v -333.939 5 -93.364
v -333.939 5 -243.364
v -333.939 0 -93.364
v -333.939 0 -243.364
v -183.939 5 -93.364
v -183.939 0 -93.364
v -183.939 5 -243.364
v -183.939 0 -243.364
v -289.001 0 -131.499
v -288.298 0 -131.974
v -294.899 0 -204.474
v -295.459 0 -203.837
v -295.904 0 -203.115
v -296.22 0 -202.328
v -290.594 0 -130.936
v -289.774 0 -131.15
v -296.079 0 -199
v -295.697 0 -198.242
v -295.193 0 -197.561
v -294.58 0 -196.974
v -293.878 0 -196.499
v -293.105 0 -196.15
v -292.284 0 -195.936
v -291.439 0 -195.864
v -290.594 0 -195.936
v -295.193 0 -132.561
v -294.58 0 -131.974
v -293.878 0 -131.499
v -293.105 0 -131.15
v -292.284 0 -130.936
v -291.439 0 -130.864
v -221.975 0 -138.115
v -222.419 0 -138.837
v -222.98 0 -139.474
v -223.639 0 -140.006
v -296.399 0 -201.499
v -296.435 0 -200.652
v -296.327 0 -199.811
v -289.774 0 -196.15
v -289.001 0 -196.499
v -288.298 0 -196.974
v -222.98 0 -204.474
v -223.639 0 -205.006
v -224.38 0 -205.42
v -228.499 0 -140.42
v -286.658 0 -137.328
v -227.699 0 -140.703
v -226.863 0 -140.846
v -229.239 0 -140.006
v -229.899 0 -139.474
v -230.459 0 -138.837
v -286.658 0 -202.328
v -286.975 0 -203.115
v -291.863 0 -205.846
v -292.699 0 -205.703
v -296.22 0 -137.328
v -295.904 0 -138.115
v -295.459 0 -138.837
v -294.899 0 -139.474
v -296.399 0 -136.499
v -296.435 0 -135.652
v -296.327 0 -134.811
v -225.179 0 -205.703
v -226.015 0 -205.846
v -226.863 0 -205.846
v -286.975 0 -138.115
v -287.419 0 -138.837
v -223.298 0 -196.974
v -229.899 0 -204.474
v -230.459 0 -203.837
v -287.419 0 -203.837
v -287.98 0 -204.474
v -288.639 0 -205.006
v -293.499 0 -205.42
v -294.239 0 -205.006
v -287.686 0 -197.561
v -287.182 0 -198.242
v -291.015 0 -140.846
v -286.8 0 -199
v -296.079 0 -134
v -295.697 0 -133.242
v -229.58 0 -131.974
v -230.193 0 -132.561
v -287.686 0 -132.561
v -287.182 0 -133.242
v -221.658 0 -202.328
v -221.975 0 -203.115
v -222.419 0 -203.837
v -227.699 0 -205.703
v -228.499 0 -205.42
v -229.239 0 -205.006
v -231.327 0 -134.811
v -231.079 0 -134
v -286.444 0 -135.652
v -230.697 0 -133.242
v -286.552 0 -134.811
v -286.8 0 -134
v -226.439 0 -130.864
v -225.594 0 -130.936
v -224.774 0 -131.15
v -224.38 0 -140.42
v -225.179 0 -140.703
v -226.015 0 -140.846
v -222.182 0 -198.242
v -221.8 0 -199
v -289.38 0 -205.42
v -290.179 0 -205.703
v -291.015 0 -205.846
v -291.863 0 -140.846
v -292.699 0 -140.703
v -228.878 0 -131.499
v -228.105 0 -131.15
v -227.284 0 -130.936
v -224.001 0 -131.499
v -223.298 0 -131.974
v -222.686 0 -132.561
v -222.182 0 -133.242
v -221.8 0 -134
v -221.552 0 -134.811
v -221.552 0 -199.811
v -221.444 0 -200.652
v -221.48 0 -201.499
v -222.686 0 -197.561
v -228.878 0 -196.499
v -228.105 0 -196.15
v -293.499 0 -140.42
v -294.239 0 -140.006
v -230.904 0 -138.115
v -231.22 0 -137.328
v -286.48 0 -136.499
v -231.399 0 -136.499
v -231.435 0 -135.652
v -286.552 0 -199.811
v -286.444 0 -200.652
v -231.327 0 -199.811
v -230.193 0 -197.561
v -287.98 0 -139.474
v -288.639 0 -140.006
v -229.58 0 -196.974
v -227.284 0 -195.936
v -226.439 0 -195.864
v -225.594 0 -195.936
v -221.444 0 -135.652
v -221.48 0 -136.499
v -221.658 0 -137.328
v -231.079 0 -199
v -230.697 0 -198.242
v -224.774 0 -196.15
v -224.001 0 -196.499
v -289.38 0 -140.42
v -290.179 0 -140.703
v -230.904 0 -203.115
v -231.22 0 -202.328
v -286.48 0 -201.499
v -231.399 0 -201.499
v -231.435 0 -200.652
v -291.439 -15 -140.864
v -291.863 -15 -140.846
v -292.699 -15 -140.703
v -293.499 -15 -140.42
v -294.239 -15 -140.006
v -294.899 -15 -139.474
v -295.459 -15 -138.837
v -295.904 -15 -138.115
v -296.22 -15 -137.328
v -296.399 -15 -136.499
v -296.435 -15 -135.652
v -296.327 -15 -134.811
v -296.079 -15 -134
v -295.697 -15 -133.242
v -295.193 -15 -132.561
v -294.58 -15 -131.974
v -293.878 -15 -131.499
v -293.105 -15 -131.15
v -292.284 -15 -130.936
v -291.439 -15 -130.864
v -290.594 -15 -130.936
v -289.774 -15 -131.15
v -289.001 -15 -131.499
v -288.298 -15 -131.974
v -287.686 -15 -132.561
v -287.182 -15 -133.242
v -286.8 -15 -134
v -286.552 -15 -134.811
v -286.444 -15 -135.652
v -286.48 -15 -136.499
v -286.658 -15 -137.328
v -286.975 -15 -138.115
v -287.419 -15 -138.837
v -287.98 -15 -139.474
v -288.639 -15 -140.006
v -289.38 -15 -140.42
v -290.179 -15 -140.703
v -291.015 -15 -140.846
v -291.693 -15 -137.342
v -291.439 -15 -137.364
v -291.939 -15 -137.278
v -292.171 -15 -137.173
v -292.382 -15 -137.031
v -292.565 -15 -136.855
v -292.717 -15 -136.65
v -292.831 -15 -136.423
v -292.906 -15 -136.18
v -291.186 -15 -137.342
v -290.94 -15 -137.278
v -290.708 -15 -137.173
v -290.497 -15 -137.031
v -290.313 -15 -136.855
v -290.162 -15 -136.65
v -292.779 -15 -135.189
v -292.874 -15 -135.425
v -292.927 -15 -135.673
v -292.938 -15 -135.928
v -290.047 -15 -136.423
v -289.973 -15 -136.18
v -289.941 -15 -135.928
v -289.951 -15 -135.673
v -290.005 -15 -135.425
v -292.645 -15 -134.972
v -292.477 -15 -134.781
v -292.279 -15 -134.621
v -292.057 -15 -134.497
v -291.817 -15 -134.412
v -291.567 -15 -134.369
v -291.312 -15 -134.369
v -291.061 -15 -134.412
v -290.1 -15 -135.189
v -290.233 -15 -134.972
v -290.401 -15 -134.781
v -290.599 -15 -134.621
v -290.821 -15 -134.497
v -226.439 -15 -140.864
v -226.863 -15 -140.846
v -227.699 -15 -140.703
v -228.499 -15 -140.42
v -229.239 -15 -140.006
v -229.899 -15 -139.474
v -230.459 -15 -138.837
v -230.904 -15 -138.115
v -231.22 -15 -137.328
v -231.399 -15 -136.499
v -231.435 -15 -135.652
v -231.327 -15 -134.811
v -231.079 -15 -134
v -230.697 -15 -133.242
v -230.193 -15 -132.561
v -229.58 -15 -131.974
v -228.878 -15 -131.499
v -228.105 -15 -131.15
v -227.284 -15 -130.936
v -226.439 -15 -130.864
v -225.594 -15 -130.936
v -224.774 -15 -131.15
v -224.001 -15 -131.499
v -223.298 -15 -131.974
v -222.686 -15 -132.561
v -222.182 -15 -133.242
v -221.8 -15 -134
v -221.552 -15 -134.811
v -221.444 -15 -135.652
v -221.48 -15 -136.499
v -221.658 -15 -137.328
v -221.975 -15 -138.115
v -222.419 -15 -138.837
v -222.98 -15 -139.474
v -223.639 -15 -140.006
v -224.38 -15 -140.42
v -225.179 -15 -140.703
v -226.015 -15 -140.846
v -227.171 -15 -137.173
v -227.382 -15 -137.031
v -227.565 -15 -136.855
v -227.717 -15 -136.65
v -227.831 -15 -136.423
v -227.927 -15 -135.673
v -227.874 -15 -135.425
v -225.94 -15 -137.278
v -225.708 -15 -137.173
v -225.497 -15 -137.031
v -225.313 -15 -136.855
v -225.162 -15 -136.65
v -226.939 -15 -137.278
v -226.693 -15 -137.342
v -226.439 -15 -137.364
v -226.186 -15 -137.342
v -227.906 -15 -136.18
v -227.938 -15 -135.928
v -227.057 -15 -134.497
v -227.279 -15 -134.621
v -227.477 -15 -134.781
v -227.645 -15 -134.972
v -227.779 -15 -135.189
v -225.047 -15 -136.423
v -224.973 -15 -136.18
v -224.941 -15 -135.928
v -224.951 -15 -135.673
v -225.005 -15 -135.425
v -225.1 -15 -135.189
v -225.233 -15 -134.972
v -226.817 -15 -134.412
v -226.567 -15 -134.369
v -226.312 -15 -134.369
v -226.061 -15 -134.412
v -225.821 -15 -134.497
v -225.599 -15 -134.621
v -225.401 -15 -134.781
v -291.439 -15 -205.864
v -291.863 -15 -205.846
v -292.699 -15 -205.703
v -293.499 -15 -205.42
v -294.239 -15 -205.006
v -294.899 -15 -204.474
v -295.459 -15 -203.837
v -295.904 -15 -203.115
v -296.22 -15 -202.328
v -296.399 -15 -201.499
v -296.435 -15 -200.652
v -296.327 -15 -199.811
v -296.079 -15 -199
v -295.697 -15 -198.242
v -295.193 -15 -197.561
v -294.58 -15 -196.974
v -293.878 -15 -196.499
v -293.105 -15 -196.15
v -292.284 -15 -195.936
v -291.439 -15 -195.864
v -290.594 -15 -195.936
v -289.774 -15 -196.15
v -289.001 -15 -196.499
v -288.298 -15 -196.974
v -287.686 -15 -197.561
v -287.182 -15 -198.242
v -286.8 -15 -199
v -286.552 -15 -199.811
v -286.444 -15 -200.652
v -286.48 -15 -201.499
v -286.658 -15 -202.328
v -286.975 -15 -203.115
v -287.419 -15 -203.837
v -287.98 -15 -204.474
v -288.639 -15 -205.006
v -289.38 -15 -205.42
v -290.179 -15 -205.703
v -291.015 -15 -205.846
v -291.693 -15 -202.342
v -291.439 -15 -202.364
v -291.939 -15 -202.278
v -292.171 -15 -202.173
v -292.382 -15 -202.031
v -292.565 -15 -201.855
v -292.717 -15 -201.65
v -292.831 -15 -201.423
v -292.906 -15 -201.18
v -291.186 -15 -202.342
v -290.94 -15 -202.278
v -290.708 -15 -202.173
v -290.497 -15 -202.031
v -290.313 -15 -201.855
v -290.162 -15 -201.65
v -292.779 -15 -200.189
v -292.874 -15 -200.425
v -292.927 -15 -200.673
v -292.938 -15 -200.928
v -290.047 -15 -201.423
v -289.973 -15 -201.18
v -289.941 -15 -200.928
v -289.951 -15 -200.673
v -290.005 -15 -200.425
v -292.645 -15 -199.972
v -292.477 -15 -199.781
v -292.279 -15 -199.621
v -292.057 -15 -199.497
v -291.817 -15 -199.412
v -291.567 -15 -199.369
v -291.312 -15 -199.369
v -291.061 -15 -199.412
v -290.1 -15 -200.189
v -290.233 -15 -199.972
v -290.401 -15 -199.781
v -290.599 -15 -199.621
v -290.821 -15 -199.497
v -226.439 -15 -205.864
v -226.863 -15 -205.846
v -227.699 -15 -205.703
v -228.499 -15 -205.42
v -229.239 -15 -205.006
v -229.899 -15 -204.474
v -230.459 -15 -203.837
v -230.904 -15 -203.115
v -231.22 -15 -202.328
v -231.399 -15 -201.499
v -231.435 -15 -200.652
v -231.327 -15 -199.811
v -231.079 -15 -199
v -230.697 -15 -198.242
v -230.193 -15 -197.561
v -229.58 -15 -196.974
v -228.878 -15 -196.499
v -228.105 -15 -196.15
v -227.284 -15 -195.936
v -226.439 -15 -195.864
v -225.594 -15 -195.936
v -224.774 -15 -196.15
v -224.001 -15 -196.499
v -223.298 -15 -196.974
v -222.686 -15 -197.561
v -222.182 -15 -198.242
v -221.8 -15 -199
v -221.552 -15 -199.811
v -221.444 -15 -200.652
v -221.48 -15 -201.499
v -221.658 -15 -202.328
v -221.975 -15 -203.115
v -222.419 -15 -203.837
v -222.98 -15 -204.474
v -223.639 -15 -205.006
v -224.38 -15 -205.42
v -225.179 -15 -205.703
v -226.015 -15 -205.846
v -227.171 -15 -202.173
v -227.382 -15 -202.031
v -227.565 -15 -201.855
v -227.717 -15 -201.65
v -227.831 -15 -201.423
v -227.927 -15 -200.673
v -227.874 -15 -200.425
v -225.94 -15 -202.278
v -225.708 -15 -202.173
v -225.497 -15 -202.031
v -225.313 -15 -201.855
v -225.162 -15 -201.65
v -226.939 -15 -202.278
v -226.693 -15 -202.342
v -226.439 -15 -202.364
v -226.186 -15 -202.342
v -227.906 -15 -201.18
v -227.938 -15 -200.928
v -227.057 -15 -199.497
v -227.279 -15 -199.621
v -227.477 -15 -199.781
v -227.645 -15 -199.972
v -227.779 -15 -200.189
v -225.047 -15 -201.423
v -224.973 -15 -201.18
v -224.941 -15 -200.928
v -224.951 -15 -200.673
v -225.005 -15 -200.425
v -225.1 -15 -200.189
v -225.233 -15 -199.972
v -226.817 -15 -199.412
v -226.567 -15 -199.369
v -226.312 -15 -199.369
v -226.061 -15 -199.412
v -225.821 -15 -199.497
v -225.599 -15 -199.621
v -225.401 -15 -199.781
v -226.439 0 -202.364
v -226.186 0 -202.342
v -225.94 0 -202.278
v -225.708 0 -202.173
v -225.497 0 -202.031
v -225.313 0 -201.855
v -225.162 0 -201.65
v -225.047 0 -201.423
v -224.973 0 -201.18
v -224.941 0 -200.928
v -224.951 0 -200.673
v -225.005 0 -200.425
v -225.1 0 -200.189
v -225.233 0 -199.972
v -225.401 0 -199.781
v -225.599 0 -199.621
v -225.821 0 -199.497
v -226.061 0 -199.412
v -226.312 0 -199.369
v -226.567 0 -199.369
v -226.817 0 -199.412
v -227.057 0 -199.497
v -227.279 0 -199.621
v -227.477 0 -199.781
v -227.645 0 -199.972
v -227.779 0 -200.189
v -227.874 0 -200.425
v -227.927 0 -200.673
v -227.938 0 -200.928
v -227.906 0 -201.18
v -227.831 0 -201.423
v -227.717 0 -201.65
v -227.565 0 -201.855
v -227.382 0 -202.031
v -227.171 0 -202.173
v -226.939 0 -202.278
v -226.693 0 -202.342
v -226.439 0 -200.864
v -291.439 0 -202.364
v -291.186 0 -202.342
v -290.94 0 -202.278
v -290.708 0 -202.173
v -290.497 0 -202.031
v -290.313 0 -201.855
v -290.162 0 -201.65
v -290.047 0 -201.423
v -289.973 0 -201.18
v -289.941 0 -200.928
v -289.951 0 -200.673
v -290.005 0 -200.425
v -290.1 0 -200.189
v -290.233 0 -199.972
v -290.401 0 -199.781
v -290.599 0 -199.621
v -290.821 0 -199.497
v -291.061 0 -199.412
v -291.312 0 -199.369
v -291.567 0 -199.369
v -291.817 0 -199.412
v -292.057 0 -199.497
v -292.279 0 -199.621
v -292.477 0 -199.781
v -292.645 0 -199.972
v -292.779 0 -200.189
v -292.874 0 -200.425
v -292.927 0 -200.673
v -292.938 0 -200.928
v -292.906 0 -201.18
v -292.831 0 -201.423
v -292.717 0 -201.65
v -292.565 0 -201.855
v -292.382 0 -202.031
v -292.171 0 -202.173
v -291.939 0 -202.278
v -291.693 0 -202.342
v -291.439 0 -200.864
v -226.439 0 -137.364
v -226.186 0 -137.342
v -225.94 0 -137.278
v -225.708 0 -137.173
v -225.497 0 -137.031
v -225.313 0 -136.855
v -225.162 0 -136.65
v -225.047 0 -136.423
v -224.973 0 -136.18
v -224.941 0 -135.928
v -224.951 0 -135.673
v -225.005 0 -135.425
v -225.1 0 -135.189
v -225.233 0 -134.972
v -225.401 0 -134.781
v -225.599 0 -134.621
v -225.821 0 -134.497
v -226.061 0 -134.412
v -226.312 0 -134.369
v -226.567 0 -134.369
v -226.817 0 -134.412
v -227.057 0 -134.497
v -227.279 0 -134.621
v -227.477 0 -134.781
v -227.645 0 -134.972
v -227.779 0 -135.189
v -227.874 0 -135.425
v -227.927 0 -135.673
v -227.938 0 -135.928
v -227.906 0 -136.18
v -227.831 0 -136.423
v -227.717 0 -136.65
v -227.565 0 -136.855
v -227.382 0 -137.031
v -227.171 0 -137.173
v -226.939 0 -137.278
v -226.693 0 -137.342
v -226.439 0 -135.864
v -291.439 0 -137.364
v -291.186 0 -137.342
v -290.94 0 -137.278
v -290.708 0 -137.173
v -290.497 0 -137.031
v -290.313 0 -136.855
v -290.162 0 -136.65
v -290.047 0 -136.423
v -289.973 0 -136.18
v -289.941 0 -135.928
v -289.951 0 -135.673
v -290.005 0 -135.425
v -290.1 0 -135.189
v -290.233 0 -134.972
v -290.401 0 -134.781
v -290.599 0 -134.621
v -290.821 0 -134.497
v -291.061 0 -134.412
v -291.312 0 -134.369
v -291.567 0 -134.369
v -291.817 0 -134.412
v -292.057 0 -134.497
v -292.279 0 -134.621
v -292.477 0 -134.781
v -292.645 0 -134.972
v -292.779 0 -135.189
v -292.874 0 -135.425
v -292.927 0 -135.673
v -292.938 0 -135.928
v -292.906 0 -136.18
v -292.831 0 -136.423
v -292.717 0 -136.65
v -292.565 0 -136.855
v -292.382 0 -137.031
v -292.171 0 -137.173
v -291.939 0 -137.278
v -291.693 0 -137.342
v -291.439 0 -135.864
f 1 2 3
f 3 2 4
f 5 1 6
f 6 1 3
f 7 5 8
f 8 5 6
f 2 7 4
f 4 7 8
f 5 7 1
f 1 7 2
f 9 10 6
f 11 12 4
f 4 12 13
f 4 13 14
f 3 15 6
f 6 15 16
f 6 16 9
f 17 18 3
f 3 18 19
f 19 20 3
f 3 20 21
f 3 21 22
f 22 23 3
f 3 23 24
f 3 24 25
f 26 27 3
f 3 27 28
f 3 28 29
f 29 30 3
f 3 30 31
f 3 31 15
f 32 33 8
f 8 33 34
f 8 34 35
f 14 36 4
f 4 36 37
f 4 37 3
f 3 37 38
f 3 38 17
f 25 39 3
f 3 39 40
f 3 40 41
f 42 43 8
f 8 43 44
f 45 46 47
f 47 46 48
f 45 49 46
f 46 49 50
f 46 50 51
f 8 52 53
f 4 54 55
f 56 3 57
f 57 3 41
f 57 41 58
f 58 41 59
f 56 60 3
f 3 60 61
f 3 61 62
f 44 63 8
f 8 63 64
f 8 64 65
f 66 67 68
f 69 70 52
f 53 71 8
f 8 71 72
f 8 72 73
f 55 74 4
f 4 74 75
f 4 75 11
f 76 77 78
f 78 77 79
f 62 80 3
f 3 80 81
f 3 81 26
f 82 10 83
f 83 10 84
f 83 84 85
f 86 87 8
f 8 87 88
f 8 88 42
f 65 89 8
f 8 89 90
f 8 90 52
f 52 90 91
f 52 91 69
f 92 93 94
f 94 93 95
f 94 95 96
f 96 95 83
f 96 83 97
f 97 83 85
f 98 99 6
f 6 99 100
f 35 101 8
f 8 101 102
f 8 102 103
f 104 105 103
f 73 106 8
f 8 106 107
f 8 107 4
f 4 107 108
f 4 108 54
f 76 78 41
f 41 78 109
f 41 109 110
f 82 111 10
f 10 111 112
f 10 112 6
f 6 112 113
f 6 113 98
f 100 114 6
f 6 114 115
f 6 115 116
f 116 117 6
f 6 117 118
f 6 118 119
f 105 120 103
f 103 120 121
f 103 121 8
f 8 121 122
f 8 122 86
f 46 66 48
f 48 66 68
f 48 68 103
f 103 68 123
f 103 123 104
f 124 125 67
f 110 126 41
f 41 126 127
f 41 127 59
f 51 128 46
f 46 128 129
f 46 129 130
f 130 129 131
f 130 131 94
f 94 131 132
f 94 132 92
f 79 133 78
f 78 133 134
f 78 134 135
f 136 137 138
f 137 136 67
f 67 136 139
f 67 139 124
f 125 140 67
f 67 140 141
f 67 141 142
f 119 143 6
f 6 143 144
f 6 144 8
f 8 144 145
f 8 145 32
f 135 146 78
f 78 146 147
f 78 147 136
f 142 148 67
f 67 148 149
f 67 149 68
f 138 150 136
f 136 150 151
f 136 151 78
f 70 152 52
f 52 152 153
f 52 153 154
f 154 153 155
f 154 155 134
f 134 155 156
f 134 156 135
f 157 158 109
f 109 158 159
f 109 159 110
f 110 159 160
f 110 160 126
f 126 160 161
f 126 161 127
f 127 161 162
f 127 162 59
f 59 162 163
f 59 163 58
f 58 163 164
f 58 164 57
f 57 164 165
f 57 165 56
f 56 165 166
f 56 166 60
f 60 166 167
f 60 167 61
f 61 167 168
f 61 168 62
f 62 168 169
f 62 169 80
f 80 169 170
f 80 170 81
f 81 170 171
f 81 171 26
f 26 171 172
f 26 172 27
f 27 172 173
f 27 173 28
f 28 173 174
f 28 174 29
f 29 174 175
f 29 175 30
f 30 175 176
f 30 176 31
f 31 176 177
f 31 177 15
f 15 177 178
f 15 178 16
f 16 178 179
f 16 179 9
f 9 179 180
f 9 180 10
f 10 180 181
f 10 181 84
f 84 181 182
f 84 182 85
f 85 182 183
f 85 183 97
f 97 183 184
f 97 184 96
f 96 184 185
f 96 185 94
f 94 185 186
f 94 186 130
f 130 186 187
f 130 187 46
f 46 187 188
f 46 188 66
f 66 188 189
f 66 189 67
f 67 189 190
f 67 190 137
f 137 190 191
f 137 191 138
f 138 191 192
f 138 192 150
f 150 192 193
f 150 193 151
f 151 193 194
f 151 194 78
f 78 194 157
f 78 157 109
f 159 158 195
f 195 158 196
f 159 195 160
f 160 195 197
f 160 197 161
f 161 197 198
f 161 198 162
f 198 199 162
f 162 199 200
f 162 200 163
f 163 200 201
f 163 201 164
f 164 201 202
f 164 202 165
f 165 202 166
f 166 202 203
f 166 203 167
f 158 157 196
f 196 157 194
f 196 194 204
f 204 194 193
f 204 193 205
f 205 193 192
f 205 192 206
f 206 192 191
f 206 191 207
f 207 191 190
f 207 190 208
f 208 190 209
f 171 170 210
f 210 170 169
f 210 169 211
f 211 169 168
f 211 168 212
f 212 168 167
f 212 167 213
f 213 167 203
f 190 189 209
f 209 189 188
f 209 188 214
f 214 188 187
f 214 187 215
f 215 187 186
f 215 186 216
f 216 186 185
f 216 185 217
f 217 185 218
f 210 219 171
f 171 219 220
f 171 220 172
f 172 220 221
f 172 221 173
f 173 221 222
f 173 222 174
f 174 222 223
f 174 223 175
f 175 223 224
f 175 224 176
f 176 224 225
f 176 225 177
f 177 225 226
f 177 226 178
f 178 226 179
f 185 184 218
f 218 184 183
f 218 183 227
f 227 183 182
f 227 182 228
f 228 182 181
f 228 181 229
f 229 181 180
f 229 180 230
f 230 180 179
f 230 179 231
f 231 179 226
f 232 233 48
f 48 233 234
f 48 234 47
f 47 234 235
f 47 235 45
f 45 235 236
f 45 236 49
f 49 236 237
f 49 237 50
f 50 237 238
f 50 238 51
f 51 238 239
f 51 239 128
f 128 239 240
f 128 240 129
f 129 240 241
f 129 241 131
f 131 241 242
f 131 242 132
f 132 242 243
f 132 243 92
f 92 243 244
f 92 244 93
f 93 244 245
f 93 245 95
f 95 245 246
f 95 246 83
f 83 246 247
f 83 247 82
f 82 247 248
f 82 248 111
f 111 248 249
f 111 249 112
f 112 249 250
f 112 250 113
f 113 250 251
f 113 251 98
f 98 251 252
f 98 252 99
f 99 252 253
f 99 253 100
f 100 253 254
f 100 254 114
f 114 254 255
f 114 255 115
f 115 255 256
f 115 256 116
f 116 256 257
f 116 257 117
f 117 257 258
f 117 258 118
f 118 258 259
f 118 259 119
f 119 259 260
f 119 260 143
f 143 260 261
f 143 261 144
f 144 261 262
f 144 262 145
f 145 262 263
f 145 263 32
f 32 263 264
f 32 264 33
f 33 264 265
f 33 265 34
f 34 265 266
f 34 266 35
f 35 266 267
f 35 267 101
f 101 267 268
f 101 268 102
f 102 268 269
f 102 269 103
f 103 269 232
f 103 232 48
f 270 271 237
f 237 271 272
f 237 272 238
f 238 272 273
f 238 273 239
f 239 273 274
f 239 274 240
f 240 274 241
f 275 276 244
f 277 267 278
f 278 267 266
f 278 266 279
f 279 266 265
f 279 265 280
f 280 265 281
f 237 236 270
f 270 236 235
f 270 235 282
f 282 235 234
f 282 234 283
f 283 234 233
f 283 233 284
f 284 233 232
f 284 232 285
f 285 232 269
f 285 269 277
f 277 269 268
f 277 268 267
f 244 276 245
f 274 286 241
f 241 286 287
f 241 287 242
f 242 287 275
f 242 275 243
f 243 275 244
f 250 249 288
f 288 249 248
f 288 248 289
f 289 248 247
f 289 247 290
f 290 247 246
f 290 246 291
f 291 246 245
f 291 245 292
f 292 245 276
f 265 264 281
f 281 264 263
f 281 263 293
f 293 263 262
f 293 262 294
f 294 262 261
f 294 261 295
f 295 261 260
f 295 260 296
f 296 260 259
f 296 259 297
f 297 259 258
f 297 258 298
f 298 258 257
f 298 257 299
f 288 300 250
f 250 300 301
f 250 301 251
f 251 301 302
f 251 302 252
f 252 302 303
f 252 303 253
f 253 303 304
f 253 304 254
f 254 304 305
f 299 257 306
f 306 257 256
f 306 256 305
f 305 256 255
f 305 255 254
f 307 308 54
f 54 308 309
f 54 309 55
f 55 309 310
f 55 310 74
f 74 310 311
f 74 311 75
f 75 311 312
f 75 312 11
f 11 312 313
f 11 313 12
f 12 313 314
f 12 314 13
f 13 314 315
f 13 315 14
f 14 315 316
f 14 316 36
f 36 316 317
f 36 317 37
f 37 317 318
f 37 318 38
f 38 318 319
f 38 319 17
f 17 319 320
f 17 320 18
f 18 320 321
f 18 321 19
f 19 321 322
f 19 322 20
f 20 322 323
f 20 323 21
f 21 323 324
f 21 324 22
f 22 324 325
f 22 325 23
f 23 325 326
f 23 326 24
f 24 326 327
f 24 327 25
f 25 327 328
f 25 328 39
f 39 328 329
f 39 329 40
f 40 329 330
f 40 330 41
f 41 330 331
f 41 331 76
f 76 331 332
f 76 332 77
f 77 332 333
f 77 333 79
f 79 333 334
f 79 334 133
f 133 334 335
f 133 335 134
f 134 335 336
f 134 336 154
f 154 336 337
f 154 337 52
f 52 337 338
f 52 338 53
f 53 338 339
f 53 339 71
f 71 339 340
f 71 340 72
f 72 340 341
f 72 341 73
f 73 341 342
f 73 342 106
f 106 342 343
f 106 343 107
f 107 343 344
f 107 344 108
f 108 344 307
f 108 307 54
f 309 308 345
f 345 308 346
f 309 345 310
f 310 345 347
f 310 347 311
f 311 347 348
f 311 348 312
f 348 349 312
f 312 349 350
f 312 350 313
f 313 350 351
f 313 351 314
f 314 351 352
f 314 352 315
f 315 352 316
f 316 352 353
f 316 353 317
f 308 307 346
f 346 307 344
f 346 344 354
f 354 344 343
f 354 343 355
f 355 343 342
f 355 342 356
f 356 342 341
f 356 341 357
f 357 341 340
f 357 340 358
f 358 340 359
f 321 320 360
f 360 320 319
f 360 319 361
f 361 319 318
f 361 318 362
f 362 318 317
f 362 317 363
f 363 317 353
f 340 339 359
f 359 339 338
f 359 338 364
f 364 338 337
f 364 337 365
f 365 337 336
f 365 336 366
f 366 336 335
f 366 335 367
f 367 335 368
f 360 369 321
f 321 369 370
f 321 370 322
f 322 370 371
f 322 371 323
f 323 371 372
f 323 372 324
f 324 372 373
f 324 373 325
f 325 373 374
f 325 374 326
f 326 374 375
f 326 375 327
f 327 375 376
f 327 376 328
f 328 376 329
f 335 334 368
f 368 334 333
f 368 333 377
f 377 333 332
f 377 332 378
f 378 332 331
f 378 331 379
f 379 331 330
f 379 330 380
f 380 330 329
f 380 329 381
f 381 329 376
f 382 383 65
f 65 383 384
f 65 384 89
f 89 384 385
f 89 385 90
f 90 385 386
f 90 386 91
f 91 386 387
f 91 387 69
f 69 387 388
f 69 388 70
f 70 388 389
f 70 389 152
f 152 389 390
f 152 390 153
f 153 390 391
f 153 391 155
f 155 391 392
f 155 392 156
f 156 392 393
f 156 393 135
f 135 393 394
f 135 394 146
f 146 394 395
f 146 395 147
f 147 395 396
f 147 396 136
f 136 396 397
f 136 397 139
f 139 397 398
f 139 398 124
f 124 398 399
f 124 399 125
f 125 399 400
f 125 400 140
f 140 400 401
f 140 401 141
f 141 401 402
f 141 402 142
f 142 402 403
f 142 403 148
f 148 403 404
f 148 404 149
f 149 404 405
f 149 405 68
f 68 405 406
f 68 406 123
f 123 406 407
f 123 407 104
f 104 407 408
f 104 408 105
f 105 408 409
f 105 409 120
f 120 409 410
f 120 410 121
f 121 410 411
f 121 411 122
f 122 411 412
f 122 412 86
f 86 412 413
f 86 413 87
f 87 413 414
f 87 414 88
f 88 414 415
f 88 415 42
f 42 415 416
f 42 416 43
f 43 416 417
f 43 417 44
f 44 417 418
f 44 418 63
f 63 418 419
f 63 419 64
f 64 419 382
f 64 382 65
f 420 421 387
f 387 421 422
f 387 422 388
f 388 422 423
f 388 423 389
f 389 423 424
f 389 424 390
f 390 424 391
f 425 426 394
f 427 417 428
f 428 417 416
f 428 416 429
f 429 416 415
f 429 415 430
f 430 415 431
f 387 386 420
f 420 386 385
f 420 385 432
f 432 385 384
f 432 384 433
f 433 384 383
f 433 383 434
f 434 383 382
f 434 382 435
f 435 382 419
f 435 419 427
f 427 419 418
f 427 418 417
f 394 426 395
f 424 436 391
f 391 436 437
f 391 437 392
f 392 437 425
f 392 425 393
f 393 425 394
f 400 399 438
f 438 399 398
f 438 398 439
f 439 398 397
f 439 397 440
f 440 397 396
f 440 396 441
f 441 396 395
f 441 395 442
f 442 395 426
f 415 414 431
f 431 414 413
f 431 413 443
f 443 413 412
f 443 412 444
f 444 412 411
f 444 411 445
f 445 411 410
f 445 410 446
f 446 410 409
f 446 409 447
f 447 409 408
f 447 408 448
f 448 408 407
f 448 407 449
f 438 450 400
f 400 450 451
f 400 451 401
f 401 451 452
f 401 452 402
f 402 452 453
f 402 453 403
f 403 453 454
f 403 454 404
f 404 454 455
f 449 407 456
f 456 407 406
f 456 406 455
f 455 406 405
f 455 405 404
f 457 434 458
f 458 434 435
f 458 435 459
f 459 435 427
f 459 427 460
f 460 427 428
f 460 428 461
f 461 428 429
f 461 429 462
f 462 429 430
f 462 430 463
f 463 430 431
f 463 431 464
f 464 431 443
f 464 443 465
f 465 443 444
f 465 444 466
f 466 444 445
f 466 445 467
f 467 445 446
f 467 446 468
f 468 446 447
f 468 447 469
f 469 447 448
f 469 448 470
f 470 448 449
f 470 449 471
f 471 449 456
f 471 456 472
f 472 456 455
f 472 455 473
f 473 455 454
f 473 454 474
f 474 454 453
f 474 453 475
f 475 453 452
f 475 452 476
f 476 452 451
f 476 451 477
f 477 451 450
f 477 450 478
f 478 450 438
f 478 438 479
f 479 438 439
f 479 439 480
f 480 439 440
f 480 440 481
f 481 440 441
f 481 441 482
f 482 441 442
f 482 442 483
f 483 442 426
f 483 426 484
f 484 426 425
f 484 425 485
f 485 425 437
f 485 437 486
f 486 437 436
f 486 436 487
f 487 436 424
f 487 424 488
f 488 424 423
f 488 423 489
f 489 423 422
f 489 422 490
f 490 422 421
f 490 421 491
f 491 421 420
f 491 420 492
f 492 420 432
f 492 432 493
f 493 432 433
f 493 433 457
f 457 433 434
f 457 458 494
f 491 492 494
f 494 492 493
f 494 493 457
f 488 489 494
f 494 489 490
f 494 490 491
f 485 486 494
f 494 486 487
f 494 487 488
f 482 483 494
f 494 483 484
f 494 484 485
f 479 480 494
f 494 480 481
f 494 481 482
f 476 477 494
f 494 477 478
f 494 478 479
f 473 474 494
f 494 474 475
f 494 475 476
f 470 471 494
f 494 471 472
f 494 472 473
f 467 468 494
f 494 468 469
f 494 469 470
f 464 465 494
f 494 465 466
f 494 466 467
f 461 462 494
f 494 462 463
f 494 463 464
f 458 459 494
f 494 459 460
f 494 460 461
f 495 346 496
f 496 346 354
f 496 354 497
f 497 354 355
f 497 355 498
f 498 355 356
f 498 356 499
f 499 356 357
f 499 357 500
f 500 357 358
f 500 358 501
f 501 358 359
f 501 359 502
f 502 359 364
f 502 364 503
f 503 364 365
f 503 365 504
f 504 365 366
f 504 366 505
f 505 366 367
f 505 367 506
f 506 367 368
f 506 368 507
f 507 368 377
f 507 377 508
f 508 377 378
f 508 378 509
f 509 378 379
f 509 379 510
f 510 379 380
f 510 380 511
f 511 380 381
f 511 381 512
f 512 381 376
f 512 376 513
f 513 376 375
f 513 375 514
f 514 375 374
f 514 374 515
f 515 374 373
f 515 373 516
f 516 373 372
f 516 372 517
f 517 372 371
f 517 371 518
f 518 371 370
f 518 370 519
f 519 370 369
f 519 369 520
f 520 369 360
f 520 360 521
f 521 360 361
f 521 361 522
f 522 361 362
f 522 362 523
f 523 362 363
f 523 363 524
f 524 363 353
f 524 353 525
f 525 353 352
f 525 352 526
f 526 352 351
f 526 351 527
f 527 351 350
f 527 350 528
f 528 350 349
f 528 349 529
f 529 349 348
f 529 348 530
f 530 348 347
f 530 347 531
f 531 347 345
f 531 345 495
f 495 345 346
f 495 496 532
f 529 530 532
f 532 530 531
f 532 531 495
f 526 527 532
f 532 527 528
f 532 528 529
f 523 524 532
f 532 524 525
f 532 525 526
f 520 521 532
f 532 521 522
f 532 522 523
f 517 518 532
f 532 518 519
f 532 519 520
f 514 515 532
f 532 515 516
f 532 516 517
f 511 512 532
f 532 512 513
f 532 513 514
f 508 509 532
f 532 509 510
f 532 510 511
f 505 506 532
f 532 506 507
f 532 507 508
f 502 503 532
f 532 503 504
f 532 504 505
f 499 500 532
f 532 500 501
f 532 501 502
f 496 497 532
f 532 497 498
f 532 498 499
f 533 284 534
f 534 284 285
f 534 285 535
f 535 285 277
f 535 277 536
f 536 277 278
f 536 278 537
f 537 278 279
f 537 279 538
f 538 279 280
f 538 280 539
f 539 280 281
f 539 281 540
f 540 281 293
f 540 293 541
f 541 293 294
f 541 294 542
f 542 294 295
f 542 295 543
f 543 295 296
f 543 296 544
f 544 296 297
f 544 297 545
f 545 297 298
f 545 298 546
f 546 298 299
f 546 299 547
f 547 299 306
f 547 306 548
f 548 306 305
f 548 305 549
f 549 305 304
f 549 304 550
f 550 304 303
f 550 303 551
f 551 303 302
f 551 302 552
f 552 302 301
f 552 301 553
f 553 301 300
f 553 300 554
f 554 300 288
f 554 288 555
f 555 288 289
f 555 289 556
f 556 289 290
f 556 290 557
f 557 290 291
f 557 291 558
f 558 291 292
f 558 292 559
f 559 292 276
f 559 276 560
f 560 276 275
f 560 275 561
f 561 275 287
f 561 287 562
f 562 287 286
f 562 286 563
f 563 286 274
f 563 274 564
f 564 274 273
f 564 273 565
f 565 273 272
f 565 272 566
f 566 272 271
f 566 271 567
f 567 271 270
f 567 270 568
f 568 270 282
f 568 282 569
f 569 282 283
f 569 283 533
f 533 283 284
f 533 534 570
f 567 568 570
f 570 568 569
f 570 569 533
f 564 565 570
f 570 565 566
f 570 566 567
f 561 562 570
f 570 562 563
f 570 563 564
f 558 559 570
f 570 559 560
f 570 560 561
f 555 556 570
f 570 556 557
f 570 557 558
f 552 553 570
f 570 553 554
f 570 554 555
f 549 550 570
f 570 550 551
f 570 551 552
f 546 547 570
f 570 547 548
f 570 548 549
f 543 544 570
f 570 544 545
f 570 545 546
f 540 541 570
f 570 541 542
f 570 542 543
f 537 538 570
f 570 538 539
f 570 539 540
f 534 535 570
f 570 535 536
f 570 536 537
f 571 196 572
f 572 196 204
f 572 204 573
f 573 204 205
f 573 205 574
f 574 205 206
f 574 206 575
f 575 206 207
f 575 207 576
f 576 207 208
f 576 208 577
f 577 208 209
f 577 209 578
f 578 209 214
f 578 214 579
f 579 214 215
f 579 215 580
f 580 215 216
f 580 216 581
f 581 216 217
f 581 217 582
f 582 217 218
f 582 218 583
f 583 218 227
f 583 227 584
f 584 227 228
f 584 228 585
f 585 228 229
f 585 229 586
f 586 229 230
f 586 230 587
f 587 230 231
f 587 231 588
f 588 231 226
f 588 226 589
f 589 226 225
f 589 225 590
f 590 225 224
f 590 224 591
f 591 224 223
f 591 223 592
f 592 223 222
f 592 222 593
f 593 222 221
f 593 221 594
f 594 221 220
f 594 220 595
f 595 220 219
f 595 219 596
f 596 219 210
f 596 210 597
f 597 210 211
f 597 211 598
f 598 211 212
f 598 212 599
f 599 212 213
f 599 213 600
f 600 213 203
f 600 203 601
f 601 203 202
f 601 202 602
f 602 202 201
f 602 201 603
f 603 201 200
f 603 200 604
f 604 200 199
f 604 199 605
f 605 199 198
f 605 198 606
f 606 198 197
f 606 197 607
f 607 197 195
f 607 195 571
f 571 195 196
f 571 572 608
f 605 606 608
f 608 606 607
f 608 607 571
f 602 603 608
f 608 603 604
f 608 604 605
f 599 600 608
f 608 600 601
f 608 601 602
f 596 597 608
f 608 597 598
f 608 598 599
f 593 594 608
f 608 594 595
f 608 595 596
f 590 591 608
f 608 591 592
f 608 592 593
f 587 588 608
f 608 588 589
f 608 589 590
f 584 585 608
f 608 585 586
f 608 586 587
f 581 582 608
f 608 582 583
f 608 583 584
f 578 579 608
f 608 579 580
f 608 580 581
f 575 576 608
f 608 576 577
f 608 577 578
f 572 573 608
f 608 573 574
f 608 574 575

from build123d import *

# Parameters (mm, degrees)
ESBO_O1_W                = 150
ESBO_O1_H                = 150
RESSALTO_EXTRUS_O1_DEPTH = 5
ESBO_O2_R                = 5
RESSALTO_EXTRUS_O2_DEPTH = 15
ESBO_O4_R                = 1.5
CORTE_EXTRUS_O1_DEPTH    = 15


with BuildPart() as part:
    # Esboço1 → Ressalto-extrusão1 (new body)
    with BuildSketch(Plane(origin=(0, 0, 0), x_dir=(1, 0, 0), z_dir=(0, 1, 0))):
        with Locations((-258.939300439, 168.363905829)):
            Rectangle(ESBO_O1_W, ESBO_O1_H)
    extrude(amount=RESSALTO_EXTRUS_O1_DEPTH)

    # Esboço2 → Ressalto-extrusão2 (add)
    with BuildSketch(Plane(origin=(0, 0, 0), x_dir=(-1, 0, 0), z_dir=(0, -1, 0))):
        with Locations(Location((291.439300439, 135.863905829, 0), (0, 0, 270))):
            Circle(ESBO_O2_R)
        with Locations(Location((226.439300439, 135.863905829, 0), (0, 0, 270))):
            Circle(ESBO_O2_R)
        with Locations(Location((291.439300439, 200.863905829, 0), (0, 0, 270))):
            Circle(ESBO_O2_R)
        with Locations(Location((226.439300439, 200.863905829, 0), (0, 0, 270))):
            Circle(ESBO_O2_R)
    extrude(amount=RESSALTO_EXTRUS_O2_DEPTH)

    # Esboço4 → Corte-extrusão1 (cut)
    with BuildSketch(Plane(origin=(0, -15, 0), x_dir=(-1, 0, 0), z_dir=(0, -1, 0))):
        with Locations(Location((291.439300439, 135.863905829, 0), (0, 0, 90))):
            Circle(ESBO_O4_R)
        with Locations(Location((226.439300439, 135.863905829, 0), (0, 0, 90))):
            Circle(ESBO_O4_R)
        with Locations(Location((291.439300439, 200.863905829, 0), (0, 0, 90))):
            Circle(ESBO_O4_R)
        with Locations(Location((226.439300439, 200.863905829, 0), (0, 0, 90))):
            Circle(ESBO_O4_R)
    extrude(amount=-CORTE_EXTRUS_O1_DEPTH, mode=Mode.SUBTRACT)


solid = part.part
